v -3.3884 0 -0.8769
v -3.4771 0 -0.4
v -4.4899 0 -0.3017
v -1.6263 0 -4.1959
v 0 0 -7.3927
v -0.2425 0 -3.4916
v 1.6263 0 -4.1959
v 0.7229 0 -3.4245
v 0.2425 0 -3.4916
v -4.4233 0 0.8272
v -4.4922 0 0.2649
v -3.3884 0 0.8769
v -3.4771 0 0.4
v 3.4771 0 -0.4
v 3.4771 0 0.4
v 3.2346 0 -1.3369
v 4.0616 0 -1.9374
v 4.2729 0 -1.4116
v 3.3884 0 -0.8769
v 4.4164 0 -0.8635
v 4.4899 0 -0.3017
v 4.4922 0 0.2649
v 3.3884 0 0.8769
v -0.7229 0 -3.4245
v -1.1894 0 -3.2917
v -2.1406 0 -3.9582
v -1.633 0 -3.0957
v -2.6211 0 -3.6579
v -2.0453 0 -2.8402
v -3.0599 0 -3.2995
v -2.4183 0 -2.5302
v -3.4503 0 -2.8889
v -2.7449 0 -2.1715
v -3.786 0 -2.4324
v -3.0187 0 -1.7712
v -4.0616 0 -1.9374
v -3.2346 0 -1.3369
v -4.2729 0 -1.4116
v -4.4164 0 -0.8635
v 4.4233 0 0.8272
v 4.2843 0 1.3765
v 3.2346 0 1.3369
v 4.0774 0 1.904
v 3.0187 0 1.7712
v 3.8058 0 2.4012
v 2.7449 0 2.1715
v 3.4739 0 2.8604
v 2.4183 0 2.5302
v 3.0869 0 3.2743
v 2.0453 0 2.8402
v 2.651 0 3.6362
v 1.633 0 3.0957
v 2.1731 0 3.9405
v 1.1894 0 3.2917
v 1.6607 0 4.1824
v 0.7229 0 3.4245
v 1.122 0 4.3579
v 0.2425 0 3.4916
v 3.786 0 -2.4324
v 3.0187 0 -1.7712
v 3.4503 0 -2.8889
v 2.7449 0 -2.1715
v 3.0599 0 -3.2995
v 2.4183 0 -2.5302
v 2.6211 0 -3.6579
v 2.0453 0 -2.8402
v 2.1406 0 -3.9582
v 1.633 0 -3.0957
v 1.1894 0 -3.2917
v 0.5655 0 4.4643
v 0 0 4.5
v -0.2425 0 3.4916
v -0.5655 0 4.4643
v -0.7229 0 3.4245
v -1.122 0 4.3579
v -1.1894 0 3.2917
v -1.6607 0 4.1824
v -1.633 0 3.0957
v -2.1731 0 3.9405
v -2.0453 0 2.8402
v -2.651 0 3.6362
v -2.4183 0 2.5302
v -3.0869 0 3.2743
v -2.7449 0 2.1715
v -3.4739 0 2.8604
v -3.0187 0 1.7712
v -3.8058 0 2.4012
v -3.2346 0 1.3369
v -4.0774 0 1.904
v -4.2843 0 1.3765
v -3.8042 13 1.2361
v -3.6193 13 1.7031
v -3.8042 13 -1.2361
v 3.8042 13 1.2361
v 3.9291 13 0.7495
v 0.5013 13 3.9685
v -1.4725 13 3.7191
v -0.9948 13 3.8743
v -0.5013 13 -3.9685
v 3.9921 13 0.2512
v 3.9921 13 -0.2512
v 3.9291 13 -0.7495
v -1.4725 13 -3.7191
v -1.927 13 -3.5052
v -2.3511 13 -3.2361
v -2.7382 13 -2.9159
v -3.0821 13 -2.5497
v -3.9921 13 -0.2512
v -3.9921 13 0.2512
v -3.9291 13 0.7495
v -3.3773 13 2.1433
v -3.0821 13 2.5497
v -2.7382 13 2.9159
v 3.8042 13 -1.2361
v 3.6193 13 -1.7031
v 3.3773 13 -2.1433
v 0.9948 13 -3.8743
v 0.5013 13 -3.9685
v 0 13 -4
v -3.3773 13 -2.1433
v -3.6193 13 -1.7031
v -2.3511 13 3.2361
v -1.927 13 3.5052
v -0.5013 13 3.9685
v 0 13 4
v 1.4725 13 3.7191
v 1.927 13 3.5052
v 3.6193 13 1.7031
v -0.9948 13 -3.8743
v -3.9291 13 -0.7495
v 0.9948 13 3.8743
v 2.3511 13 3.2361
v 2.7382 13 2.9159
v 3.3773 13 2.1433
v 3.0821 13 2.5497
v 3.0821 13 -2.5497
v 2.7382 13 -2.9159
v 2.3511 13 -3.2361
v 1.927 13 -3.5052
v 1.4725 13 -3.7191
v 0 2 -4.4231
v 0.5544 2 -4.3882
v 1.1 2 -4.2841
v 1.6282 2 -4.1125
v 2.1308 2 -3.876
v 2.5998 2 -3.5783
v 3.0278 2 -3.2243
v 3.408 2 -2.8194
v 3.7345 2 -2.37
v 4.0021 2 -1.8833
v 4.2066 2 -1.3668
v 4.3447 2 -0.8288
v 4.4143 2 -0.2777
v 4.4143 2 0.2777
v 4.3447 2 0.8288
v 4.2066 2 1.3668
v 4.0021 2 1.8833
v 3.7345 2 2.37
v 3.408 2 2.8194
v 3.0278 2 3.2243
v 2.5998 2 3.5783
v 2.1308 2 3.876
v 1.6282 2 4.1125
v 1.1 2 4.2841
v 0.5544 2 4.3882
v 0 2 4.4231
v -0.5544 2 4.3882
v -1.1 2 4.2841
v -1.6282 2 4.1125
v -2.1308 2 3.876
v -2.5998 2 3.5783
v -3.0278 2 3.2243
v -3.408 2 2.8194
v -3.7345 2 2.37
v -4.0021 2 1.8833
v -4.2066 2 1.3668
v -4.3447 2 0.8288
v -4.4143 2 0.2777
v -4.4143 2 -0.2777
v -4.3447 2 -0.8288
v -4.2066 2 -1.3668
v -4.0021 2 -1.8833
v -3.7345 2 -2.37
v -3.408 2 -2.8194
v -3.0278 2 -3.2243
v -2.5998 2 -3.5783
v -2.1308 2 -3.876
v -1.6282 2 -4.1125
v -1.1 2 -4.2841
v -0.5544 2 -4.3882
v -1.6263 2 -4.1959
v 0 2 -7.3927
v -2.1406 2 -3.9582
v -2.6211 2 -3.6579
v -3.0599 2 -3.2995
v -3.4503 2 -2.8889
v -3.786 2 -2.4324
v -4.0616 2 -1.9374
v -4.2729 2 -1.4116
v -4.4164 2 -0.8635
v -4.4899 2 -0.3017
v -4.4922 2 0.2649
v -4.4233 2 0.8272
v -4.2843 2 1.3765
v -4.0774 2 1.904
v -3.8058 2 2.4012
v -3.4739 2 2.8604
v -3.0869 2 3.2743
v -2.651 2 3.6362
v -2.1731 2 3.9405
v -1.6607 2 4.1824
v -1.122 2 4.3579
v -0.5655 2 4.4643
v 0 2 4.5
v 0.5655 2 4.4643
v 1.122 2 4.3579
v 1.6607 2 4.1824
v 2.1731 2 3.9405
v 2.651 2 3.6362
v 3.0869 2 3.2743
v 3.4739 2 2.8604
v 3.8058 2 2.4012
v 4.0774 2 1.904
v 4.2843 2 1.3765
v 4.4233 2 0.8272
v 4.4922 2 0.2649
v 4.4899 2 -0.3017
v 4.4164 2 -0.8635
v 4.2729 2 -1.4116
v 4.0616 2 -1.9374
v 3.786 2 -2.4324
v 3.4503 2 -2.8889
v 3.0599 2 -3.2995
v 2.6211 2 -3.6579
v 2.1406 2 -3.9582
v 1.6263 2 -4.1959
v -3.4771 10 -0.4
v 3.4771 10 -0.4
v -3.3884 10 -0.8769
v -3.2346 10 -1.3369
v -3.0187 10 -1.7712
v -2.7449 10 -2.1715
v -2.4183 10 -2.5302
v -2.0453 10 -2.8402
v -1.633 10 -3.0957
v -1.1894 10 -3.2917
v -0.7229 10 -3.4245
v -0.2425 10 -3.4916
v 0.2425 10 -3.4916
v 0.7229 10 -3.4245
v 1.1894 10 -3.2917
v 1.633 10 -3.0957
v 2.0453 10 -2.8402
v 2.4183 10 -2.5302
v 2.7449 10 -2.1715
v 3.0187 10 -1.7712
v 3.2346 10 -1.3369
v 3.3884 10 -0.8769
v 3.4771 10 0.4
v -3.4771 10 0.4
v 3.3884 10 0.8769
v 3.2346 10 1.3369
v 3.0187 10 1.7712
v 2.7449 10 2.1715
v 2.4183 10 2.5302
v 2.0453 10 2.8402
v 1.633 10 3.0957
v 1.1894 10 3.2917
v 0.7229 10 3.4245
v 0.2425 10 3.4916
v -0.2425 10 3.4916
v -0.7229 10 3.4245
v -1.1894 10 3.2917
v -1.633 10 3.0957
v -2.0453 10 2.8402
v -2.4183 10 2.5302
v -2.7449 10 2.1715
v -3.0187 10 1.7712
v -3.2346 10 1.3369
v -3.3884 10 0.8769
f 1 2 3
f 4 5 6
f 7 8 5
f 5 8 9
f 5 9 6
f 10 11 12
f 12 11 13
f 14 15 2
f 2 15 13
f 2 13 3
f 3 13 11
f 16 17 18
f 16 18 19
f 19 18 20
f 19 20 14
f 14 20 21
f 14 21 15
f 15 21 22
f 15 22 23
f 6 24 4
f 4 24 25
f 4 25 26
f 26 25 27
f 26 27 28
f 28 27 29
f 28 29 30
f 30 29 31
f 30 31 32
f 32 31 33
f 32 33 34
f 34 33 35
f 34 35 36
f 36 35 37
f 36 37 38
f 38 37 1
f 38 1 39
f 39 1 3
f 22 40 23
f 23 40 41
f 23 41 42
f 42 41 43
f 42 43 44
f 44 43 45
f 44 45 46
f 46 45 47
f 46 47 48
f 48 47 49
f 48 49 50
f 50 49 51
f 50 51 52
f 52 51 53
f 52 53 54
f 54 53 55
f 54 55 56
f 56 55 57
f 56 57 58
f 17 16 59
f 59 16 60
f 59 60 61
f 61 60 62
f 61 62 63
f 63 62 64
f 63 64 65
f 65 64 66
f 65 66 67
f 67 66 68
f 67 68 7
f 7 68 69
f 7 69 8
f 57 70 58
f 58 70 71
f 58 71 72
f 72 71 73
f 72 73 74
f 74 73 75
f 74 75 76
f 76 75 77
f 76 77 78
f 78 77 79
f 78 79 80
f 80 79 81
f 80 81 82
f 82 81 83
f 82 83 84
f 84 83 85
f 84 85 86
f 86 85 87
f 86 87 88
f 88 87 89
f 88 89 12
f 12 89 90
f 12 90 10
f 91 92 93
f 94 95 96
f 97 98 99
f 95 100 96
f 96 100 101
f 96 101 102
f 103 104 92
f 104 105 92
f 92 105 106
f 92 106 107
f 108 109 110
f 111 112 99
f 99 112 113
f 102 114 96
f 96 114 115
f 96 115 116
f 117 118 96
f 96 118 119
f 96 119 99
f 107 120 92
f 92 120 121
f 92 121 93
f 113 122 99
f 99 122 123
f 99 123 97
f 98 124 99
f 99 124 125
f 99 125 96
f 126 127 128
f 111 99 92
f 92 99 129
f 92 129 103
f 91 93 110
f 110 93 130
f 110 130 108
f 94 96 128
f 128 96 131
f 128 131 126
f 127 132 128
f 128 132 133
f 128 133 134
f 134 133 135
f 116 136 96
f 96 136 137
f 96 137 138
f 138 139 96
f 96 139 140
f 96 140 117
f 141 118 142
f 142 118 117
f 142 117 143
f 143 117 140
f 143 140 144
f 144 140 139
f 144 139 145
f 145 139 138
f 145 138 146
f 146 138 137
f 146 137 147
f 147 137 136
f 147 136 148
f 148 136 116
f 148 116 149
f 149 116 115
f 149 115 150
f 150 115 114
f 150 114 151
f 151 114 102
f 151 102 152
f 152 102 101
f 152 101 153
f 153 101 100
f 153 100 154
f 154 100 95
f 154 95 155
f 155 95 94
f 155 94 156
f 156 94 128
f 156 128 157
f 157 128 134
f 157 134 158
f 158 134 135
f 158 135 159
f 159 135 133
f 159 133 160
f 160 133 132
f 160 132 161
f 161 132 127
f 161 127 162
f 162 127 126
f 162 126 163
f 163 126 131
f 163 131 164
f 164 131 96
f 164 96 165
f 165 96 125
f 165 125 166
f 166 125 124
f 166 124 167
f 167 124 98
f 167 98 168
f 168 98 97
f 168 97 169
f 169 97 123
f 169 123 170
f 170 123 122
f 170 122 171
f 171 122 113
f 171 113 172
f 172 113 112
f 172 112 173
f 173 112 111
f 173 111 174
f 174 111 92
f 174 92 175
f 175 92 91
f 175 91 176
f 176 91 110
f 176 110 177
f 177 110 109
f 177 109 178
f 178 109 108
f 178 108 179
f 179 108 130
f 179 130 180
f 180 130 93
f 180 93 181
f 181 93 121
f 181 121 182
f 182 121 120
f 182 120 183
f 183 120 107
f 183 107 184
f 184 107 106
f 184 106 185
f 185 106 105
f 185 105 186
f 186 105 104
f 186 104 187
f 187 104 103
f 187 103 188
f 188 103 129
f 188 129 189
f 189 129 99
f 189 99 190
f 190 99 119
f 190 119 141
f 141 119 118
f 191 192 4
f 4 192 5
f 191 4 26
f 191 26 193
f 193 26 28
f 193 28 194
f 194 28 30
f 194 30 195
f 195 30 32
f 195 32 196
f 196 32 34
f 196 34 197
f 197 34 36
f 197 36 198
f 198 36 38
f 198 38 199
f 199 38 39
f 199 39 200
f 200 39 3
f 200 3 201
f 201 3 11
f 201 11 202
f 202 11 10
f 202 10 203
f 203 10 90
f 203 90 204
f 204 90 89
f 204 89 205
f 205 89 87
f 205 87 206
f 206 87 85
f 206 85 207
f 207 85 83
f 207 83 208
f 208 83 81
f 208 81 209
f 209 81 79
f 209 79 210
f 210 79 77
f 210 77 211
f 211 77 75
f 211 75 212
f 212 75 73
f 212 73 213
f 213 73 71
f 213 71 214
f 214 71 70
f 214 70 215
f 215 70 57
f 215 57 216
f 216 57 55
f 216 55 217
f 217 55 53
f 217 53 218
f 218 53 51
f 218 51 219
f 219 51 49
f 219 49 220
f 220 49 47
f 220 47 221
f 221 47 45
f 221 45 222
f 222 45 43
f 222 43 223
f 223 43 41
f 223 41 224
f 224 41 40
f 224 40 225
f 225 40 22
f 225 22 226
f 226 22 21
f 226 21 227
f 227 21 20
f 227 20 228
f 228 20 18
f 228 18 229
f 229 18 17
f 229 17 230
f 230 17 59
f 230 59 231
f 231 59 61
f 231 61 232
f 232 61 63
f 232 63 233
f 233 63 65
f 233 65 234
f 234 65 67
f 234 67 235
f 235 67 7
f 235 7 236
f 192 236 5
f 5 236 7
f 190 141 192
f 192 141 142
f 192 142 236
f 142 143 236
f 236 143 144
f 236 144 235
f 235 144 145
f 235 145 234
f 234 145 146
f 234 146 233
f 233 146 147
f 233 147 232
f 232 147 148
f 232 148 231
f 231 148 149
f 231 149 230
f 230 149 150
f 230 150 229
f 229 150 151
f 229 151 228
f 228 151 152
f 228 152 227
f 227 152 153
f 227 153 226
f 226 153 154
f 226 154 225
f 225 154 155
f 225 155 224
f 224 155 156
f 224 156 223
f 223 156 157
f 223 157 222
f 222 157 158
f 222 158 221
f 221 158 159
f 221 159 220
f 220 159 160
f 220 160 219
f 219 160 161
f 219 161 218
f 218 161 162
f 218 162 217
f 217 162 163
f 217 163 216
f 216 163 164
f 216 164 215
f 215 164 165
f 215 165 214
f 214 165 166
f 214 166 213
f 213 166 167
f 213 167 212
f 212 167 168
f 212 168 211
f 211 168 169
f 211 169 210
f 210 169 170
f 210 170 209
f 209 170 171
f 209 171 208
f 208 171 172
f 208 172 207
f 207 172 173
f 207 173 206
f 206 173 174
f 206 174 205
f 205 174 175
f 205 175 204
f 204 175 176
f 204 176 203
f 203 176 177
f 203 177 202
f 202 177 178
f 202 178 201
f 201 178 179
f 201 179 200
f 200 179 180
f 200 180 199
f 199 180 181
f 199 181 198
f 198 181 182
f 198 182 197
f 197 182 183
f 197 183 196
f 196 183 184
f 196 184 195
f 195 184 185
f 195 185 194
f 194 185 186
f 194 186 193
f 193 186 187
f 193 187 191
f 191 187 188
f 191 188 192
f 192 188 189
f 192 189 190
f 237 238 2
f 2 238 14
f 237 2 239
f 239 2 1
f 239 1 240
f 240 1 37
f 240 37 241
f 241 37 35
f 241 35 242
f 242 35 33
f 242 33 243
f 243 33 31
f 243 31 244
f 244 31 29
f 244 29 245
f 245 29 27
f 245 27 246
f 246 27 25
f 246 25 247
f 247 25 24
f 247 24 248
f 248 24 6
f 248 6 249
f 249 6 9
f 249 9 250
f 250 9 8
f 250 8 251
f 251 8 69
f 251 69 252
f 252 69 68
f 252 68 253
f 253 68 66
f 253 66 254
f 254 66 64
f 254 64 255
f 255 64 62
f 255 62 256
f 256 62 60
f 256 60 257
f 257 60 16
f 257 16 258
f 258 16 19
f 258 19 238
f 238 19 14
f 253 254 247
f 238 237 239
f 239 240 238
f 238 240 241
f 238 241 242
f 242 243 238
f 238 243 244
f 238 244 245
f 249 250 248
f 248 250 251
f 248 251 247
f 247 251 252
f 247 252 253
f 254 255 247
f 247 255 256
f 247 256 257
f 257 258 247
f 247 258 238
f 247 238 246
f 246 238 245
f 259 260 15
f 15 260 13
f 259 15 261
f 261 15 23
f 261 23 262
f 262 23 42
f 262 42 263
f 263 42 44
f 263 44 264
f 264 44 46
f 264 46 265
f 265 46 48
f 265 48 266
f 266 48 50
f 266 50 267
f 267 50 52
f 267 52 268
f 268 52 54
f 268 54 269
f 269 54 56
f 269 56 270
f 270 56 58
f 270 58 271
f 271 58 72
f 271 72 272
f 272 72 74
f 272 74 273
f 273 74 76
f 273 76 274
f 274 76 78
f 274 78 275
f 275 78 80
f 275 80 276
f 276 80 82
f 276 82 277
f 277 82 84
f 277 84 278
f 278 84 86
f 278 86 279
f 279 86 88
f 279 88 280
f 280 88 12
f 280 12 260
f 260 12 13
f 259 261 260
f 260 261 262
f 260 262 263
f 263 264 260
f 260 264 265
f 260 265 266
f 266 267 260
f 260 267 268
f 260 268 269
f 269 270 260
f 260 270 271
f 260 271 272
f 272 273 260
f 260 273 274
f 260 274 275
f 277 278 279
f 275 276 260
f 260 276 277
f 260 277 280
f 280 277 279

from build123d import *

# Parameters (mm, degrees)
SKETCH2_R           = 4
SKETCH1_R           = 4.5
SKETCH1_35_R        = 3.5
BOSS_EXTRUDE1_DEPTH = 2
CUT_EXTRUDE1_DEPTH  = 10


with BuildPart() as part:
    # Sketch2 → Loft1 section 0
    with BuildSketch(Plane(origin=(0, 13, 0), x_dir=(1, 0, 0), z_dir=(0, 1, 0))):
        Circle(SKETCH2_R)
    # Sketch1 → Loft1 section 1
    with BuildSketch(Plane(origin=(0, 0, 0), x_dir=(1, 0, 0), z_dir=(0, 1, 0))):
        Circle(SKETCH1_R)
    loft()

    # Sketch1<35> → Boss-Extrude1 (add)
    with BuildSketch(Plane(origin=(0, 0, 0), x_dir=(1, 0, 0), z_dir=(0, 1, 0))):
        with BuildLine():
            Line((0, 7.392655237), (-1.626288958, 4.195853218))
            ThreePointArc((-1.626288958, 4.195853218), (0, -4.5), (1.626288958, 4.195853218))
            Line((1.626288958, 4.195853218), (0, 7.392655237))
        make_face()
        Circle(SKETCH1_35_R, mode=Mode.SUBTRACT)
    extrude(amount=BOSS_EXTRUDE1_DEPTH)

    # Sketch1<36> → Cut-Extrude1 (cut)
    with BuildSketch(Plane(origin=(0, 0, 0), x_dir=(1, 0, 0), z_dir=(0, 1, 0))):
        with BuildLine():
            ThreePointArc((3.47706773, 0.4), (0, 3.5), (-3.47706773, 0.4))
            Line((-3.47706773, 0.4), (3.47706773, 0.4))
        make_face()
        with BuildLine():
            Line((3.47706773, -0.4), (-3.47706773, -0.4))
            ThreePointArc((-3.47706773, -0.4), (0, -3.5), (3.47706773, -0.4))
        make_face()
    extrude(amount=CUT_EXTRUDE1_DEPTH, mode=Mode.SUBTRACT)


solid = part.part
